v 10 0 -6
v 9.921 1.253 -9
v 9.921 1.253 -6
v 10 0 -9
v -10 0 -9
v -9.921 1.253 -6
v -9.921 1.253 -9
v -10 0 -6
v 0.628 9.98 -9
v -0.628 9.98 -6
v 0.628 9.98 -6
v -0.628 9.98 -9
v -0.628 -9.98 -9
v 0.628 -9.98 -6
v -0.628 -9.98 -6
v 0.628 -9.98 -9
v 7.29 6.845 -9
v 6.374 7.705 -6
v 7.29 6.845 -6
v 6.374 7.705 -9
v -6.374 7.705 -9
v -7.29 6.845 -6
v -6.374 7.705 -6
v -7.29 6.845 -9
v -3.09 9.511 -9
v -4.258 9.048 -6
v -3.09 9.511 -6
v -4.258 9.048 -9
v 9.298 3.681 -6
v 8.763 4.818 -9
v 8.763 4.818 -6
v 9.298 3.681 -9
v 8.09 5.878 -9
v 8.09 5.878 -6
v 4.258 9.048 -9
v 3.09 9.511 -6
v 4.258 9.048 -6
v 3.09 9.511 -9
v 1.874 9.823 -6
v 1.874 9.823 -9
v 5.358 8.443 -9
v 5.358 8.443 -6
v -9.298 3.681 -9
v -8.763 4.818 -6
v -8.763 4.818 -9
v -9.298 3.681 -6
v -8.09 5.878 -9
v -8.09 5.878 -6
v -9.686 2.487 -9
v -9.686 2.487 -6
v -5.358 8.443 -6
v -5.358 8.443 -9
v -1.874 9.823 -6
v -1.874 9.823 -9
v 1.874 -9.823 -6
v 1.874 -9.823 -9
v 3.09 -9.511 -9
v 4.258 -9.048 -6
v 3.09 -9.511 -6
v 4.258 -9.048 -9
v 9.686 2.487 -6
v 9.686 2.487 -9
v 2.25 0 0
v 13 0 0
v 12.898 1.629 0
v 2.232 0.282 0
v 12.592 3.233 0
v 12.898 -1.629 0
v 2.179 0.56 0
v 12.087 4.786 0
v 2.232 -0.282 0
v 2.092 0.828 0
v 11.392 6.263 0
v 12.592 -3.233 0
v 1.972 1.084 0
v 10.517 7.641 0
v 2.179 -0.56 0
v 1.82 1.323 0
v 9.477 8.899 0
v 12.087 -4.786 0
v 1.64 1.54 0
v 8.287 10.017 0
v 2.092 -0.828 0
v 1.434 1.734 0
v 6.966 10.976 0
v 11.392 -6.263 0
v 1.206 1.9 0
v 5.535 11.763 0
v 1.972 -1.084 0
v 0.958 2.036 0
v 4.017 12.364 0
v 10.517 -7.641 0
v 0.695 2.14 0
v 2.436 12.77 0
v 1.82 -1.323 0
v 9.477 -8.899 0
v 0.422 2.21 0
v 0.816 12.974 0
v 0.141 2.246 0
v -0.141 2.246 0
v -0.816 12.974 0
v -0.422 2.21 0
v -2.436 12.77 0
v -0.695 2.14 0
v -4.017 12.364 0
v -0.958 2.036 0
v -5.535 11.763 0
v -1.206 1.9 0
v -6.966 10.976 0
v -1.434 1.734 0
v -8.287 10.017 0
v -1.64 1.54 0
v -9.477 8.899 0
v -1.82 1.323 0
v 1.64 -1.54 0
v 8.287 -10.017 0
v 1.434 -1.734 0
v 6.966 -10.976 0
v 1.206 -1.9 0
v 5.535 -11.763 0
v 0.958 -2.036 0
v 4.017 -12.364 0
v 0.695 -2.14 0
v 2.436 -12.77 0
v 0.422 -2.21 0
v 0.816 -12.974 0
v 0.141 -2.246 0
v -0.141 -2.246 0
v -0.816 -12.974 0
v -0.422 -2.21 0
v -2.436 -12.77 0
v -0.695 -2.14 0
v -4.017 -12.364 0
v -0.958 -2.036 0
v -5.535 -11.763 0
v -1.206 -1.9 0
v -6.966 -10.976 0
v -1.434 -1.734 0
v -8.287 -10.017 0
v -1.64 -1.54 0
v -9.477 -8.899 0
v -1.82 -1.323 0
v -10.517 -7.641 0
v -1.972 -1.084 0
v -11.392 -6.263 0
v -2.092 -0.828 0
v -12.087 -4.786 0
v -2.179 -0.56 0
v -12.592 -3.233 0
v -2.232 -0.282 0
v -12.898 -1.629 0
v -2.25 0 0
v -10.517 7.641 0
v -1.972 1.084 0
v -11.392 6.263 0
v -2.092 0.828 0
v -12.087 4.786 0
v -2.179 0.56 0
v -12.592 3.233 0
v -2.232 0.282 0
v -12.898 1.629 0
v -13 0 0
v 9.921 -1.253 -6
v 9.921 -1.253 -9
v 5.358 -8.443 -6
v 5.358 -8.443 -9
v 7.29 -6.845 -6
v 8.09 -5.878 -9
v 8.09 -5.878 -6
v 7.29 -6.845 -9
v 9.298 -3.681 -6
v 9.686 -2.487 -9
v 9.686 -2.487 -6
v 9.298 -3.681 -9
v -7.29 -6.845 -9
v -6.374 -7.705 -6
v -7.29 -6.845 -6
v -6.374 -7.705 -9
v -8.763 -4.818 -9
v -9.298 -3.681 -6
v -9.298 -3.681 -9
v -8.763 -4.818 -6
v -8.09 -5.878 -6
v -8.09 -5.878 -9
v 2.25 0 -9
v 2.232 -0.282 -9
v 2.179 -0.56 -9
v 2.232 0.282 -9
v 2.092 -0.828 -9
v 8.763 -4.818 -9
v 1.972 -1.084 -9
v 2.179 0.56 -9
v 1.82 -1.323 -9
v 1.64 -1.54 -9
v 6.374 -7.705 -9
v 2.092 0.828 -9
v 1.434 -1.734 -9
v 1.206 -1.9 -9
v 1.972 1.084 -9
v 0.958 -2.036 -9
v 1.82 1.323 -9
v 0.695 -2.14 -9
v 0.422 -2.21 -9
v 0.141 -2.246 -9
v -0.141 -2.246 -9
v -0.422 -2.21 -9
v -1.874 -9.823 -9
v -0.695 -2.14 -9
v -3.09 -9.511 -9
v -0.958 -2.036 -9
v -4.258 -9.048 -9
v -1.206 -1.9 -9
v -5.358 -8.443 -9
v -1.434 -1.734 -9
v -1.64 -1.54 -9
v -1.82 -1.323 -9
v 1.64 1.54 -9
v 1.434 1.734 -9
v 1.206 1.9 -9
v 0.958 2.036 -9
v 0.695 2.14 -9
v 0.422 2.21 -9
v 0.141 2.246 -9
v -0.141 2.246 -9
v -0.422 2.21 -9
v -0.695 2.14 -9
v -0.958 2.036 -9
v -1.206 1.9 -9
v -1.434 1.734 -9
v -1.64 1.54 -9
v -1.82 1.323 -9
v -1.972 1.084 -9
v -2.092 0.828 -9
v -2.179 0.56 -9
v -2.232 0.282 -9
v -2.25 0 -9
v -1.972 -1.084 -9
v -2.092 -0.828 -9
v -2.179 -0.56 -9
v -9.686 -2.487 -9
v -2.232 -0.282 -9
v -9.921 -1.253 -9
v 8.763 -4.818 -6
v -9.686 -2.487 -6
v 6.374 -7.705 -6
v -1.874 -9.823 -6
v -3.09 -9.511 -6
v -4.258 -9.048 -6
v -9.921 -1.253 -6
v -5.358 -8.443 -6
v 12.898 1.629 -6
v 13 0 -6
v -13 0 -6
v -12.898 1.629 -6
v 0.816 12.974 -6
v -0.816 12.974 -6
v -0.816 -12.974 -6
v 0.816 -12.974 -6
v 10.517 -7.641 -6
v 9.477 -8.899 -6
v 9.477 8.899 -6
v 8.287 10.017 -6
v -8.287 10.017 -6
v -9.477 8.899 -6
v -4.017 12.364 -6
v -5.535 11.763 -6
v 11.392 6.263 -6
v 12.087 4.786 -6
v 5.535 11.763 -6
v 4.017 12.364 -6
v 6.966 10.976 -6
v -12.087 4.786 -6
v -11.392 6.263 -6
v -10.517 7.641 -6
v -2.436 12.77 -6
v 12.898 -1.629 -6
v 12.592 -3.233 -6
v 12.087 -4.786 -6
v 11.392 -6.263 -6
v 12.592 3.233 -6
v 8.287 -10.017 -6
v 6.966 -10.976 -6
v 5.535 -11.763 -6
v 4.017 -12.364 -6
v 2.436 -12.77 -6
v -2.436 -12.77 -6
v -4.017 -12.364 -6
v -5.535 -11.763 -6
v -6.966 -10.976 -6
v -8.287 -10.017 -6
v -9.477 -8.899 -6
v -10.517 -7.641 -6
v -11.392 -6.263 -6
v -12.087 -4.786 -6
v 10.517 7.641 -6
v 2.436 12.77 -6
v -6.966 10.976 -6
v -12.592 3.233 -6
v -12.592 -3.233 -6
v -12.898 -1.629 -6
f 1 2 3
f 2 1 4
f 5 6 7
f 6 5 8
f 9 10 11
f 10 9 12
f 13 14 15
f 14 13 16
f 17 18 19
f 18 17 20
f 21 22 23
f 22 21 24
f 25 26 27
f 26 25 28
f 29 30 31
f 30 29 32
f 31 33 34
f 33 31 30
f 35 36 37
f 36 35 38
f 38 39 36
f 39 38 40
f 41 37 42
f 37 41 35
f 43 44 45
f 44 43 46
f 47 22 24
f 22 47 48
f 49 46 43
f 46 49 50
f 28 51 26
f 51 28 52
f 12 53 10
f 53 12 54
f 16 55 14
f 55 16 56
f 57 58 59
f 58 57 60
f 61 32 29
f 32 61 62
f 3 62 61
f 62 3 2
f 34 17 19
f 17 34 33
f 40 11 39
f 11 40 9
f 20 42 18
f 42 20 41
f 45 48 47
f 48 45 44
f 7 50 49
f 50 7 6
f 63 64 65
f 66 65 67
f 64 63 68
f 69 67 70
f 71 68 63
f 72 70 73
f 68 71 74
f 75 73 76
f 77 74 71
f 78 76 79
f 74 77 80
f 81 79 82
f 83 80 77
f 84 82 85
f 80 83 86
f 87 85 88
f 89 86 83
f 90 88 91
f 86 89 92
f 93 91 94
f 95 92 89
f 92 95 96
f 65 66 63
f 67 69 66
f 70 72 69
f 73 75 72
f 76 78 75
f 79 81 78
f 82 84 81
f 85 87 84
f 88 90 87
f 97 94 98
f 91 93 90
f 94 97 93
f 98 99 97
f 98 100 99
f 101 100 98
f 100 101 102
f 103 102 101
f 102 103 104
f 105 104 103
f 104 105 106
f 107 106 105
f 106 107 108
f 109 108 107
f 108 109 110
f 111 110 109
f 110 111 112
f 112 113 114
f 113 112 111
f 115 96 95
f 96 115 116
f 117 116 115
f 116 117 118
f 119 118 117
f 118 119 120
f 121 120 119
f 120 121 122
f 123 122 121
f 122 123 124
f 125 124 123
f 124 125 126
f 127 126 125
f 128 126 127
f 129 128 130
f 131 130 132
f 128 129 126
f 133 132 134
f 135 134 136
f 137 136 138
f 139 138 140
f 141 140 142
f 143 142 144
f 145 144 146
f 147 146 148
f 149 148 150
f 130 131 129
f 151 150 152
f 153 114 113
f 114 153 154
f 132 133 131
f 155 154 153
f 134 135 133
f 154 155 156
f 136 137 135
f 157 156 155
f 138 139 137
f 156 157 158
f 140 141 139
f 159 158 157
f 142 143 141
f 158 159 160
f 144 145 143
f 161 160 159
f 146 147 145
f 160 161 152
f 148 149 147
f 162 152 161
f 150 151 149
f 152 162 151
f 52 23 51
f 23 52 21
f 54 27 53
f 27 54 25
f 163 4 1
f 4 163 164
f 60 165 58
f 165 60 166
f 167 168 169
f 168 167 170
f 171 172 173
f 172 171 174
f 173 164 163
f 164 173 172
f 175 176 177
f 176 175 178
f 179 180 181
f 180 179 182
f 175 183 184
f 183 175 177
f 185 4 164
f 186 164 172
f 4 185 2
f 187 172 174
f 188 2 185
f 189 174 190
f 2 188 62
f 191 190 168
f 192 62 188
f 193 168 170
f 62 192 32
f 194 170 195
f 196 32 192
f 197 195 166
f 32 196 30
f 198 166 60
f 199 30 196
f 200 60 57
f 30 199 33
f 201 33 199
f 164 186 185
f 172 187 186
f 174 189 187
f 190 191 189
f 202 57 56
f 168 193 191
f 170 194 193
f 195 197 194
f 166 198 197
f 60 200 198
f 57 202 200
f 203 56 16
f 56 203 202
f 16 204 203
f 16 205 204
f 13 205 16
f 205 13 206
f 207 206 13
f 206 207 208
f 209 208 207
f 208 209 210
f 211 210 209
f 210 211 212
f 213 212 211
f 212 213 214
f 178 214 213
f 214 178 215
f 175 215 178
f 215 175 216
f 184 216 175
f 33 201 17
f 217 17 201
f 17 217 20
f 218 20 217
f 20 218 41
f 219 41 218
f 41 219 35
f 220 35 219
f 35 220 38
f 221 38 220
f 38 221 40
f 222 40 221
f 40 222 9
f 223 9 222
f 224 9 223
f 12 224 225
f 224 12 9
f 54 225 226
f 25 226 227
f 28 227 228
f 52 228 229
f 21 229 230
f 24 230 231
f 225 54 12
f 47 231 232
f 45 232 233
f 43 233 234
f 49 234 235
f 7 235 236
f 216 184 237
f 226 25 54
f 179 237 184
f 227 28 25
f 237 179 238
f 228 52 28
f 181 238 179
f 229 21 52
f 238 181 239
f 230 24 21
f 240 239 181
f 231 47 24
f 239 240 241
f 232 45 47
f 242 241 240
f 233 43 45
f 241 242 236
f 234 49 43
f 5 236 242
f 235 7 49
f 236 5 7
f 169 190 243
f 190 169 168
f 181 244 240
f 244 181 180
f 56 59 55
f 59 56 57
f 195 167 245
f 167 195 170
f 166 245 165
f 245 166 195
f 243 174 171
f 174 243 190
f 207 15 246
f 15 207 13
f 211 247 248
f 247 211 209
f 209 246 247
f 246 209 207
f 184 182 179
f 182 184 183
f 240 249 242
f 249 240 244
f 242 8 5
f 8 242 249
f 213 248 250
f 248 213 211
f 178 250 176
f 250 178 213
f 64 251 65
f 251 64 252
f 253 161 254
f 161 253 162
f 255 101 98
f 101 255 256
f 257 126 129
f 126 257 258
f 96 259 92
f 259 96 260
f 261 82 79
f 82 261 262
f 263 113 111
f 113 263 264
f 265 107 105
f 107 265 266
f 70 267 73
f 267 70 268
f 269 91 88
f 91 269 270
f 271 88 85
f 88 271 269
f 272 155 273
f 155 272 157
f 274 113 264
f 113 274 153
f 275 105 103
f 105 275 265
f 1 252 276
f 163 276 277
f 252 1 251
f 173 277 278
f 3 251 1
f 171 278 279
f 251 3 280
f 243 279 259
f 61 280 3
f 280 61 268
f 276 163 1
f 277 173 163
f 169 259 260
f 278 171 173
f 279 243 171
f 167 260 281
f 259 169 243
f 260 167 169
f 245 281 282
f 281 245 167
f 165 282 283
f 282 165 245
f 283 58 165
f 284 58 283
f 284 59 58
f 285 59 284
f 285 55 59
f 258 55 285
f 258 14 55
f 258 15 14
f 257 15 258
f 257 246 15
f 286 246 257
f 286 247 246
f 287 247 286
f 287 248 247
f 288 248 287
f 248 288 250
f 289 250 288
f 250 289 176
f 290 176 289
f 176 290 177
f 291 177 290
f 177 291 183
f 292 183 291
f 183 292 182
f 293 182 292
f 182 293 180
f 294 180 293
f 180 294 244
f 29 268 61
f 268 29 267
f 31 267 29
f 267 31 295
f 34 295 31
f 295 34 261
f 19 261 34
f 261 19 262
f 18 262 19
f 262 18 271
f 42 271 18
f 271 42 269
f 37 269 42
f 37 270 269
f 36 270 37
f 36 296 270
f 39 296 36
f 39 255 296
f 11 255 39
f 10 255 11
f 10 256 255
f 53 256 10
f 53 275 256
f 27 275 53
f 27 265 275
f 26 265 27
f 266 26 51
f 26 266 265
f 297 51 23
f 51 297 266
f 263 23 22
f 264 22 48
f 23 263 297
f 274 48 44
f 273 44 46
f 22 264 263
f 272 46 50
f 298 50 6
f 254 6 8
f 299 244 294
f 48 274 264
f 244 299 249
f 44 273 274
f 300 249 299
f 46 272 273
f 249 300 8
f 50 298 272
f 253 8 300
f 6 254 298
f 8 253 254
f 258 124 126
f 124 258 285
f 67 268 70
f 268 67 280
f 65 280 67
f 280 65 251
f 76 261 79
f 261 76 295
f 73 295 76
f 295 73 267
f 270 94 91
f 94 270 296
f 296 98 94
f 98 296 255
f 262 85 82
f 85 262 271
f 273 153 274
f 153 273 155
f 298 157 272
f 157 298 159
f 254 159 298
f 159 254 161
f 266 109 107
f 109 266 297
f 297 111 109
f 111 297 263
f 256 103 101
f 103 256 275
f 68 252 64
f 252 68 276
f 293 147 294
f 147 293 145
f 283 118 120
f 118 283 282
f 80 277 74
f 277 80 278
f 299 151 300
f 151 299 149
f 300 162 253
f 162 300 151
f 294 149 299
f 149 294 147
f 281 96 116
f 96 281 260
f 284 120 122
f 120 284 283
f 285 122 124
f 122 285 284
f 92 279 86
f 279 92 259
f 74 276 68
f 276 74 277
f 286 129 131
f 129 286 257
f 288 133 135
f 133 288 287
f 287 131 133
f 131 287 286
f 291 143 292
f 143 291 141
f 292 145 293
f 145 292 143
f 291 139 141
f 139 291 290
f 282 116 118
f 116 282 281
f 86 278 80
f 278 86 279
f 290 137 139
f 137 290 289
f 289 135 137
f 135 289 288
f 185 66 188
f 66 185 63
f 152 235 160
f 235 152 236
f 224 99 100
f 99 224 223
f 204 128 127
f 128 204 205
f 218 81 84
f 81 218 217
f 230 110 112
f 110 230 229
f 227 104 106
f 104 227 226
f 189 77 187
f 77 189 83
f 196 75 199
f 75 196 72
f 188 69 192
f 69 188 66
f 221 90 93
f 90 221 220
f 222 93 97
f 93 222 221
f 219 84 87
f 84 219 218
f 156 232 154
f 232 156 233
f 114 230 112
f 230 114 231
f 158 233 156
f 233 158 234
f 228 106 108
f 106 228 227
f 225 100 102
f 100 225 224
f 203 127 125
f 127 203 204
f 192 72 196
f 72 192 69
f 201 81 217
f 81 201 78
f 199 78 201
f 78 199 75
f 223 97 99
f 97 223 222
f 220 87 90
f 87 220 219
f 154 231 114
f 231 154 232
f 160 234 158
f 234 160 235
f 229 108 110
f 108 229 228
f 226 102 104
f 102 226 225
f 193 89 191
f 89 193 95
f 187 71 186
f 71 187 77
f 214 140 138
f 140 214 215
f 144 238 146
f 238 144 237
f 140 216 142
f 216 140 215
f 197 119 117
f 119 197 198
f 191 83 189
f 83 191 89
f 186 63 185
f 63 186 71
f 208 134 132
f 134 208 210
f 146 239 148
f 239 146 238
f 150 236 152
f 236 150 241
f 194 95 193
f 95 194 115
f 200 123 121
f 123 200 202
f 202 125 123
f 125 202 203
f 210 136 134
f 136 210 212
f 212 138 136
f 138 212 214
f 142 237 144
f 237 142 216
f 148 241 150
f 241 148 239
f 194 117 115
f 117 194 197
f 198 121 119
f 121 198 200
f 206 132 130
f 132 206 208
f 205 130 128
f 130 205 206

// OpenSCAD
$fn = 50;


difference() {
	union() {
		translate(v = [0, 0, -9.0000000000]) {
			cylinder(h = 9, r = 10.0000000000);
		}
		translate(v = [0, 0, -6.0000000000]) {
			cylinder(h = 6, r = 13.0000000000);
		}
	}
	union() {
		#translate(v = [0, 0, -9]) {
			cylinder(h = 9, r = 2.2500000000);
		}
	}
}
